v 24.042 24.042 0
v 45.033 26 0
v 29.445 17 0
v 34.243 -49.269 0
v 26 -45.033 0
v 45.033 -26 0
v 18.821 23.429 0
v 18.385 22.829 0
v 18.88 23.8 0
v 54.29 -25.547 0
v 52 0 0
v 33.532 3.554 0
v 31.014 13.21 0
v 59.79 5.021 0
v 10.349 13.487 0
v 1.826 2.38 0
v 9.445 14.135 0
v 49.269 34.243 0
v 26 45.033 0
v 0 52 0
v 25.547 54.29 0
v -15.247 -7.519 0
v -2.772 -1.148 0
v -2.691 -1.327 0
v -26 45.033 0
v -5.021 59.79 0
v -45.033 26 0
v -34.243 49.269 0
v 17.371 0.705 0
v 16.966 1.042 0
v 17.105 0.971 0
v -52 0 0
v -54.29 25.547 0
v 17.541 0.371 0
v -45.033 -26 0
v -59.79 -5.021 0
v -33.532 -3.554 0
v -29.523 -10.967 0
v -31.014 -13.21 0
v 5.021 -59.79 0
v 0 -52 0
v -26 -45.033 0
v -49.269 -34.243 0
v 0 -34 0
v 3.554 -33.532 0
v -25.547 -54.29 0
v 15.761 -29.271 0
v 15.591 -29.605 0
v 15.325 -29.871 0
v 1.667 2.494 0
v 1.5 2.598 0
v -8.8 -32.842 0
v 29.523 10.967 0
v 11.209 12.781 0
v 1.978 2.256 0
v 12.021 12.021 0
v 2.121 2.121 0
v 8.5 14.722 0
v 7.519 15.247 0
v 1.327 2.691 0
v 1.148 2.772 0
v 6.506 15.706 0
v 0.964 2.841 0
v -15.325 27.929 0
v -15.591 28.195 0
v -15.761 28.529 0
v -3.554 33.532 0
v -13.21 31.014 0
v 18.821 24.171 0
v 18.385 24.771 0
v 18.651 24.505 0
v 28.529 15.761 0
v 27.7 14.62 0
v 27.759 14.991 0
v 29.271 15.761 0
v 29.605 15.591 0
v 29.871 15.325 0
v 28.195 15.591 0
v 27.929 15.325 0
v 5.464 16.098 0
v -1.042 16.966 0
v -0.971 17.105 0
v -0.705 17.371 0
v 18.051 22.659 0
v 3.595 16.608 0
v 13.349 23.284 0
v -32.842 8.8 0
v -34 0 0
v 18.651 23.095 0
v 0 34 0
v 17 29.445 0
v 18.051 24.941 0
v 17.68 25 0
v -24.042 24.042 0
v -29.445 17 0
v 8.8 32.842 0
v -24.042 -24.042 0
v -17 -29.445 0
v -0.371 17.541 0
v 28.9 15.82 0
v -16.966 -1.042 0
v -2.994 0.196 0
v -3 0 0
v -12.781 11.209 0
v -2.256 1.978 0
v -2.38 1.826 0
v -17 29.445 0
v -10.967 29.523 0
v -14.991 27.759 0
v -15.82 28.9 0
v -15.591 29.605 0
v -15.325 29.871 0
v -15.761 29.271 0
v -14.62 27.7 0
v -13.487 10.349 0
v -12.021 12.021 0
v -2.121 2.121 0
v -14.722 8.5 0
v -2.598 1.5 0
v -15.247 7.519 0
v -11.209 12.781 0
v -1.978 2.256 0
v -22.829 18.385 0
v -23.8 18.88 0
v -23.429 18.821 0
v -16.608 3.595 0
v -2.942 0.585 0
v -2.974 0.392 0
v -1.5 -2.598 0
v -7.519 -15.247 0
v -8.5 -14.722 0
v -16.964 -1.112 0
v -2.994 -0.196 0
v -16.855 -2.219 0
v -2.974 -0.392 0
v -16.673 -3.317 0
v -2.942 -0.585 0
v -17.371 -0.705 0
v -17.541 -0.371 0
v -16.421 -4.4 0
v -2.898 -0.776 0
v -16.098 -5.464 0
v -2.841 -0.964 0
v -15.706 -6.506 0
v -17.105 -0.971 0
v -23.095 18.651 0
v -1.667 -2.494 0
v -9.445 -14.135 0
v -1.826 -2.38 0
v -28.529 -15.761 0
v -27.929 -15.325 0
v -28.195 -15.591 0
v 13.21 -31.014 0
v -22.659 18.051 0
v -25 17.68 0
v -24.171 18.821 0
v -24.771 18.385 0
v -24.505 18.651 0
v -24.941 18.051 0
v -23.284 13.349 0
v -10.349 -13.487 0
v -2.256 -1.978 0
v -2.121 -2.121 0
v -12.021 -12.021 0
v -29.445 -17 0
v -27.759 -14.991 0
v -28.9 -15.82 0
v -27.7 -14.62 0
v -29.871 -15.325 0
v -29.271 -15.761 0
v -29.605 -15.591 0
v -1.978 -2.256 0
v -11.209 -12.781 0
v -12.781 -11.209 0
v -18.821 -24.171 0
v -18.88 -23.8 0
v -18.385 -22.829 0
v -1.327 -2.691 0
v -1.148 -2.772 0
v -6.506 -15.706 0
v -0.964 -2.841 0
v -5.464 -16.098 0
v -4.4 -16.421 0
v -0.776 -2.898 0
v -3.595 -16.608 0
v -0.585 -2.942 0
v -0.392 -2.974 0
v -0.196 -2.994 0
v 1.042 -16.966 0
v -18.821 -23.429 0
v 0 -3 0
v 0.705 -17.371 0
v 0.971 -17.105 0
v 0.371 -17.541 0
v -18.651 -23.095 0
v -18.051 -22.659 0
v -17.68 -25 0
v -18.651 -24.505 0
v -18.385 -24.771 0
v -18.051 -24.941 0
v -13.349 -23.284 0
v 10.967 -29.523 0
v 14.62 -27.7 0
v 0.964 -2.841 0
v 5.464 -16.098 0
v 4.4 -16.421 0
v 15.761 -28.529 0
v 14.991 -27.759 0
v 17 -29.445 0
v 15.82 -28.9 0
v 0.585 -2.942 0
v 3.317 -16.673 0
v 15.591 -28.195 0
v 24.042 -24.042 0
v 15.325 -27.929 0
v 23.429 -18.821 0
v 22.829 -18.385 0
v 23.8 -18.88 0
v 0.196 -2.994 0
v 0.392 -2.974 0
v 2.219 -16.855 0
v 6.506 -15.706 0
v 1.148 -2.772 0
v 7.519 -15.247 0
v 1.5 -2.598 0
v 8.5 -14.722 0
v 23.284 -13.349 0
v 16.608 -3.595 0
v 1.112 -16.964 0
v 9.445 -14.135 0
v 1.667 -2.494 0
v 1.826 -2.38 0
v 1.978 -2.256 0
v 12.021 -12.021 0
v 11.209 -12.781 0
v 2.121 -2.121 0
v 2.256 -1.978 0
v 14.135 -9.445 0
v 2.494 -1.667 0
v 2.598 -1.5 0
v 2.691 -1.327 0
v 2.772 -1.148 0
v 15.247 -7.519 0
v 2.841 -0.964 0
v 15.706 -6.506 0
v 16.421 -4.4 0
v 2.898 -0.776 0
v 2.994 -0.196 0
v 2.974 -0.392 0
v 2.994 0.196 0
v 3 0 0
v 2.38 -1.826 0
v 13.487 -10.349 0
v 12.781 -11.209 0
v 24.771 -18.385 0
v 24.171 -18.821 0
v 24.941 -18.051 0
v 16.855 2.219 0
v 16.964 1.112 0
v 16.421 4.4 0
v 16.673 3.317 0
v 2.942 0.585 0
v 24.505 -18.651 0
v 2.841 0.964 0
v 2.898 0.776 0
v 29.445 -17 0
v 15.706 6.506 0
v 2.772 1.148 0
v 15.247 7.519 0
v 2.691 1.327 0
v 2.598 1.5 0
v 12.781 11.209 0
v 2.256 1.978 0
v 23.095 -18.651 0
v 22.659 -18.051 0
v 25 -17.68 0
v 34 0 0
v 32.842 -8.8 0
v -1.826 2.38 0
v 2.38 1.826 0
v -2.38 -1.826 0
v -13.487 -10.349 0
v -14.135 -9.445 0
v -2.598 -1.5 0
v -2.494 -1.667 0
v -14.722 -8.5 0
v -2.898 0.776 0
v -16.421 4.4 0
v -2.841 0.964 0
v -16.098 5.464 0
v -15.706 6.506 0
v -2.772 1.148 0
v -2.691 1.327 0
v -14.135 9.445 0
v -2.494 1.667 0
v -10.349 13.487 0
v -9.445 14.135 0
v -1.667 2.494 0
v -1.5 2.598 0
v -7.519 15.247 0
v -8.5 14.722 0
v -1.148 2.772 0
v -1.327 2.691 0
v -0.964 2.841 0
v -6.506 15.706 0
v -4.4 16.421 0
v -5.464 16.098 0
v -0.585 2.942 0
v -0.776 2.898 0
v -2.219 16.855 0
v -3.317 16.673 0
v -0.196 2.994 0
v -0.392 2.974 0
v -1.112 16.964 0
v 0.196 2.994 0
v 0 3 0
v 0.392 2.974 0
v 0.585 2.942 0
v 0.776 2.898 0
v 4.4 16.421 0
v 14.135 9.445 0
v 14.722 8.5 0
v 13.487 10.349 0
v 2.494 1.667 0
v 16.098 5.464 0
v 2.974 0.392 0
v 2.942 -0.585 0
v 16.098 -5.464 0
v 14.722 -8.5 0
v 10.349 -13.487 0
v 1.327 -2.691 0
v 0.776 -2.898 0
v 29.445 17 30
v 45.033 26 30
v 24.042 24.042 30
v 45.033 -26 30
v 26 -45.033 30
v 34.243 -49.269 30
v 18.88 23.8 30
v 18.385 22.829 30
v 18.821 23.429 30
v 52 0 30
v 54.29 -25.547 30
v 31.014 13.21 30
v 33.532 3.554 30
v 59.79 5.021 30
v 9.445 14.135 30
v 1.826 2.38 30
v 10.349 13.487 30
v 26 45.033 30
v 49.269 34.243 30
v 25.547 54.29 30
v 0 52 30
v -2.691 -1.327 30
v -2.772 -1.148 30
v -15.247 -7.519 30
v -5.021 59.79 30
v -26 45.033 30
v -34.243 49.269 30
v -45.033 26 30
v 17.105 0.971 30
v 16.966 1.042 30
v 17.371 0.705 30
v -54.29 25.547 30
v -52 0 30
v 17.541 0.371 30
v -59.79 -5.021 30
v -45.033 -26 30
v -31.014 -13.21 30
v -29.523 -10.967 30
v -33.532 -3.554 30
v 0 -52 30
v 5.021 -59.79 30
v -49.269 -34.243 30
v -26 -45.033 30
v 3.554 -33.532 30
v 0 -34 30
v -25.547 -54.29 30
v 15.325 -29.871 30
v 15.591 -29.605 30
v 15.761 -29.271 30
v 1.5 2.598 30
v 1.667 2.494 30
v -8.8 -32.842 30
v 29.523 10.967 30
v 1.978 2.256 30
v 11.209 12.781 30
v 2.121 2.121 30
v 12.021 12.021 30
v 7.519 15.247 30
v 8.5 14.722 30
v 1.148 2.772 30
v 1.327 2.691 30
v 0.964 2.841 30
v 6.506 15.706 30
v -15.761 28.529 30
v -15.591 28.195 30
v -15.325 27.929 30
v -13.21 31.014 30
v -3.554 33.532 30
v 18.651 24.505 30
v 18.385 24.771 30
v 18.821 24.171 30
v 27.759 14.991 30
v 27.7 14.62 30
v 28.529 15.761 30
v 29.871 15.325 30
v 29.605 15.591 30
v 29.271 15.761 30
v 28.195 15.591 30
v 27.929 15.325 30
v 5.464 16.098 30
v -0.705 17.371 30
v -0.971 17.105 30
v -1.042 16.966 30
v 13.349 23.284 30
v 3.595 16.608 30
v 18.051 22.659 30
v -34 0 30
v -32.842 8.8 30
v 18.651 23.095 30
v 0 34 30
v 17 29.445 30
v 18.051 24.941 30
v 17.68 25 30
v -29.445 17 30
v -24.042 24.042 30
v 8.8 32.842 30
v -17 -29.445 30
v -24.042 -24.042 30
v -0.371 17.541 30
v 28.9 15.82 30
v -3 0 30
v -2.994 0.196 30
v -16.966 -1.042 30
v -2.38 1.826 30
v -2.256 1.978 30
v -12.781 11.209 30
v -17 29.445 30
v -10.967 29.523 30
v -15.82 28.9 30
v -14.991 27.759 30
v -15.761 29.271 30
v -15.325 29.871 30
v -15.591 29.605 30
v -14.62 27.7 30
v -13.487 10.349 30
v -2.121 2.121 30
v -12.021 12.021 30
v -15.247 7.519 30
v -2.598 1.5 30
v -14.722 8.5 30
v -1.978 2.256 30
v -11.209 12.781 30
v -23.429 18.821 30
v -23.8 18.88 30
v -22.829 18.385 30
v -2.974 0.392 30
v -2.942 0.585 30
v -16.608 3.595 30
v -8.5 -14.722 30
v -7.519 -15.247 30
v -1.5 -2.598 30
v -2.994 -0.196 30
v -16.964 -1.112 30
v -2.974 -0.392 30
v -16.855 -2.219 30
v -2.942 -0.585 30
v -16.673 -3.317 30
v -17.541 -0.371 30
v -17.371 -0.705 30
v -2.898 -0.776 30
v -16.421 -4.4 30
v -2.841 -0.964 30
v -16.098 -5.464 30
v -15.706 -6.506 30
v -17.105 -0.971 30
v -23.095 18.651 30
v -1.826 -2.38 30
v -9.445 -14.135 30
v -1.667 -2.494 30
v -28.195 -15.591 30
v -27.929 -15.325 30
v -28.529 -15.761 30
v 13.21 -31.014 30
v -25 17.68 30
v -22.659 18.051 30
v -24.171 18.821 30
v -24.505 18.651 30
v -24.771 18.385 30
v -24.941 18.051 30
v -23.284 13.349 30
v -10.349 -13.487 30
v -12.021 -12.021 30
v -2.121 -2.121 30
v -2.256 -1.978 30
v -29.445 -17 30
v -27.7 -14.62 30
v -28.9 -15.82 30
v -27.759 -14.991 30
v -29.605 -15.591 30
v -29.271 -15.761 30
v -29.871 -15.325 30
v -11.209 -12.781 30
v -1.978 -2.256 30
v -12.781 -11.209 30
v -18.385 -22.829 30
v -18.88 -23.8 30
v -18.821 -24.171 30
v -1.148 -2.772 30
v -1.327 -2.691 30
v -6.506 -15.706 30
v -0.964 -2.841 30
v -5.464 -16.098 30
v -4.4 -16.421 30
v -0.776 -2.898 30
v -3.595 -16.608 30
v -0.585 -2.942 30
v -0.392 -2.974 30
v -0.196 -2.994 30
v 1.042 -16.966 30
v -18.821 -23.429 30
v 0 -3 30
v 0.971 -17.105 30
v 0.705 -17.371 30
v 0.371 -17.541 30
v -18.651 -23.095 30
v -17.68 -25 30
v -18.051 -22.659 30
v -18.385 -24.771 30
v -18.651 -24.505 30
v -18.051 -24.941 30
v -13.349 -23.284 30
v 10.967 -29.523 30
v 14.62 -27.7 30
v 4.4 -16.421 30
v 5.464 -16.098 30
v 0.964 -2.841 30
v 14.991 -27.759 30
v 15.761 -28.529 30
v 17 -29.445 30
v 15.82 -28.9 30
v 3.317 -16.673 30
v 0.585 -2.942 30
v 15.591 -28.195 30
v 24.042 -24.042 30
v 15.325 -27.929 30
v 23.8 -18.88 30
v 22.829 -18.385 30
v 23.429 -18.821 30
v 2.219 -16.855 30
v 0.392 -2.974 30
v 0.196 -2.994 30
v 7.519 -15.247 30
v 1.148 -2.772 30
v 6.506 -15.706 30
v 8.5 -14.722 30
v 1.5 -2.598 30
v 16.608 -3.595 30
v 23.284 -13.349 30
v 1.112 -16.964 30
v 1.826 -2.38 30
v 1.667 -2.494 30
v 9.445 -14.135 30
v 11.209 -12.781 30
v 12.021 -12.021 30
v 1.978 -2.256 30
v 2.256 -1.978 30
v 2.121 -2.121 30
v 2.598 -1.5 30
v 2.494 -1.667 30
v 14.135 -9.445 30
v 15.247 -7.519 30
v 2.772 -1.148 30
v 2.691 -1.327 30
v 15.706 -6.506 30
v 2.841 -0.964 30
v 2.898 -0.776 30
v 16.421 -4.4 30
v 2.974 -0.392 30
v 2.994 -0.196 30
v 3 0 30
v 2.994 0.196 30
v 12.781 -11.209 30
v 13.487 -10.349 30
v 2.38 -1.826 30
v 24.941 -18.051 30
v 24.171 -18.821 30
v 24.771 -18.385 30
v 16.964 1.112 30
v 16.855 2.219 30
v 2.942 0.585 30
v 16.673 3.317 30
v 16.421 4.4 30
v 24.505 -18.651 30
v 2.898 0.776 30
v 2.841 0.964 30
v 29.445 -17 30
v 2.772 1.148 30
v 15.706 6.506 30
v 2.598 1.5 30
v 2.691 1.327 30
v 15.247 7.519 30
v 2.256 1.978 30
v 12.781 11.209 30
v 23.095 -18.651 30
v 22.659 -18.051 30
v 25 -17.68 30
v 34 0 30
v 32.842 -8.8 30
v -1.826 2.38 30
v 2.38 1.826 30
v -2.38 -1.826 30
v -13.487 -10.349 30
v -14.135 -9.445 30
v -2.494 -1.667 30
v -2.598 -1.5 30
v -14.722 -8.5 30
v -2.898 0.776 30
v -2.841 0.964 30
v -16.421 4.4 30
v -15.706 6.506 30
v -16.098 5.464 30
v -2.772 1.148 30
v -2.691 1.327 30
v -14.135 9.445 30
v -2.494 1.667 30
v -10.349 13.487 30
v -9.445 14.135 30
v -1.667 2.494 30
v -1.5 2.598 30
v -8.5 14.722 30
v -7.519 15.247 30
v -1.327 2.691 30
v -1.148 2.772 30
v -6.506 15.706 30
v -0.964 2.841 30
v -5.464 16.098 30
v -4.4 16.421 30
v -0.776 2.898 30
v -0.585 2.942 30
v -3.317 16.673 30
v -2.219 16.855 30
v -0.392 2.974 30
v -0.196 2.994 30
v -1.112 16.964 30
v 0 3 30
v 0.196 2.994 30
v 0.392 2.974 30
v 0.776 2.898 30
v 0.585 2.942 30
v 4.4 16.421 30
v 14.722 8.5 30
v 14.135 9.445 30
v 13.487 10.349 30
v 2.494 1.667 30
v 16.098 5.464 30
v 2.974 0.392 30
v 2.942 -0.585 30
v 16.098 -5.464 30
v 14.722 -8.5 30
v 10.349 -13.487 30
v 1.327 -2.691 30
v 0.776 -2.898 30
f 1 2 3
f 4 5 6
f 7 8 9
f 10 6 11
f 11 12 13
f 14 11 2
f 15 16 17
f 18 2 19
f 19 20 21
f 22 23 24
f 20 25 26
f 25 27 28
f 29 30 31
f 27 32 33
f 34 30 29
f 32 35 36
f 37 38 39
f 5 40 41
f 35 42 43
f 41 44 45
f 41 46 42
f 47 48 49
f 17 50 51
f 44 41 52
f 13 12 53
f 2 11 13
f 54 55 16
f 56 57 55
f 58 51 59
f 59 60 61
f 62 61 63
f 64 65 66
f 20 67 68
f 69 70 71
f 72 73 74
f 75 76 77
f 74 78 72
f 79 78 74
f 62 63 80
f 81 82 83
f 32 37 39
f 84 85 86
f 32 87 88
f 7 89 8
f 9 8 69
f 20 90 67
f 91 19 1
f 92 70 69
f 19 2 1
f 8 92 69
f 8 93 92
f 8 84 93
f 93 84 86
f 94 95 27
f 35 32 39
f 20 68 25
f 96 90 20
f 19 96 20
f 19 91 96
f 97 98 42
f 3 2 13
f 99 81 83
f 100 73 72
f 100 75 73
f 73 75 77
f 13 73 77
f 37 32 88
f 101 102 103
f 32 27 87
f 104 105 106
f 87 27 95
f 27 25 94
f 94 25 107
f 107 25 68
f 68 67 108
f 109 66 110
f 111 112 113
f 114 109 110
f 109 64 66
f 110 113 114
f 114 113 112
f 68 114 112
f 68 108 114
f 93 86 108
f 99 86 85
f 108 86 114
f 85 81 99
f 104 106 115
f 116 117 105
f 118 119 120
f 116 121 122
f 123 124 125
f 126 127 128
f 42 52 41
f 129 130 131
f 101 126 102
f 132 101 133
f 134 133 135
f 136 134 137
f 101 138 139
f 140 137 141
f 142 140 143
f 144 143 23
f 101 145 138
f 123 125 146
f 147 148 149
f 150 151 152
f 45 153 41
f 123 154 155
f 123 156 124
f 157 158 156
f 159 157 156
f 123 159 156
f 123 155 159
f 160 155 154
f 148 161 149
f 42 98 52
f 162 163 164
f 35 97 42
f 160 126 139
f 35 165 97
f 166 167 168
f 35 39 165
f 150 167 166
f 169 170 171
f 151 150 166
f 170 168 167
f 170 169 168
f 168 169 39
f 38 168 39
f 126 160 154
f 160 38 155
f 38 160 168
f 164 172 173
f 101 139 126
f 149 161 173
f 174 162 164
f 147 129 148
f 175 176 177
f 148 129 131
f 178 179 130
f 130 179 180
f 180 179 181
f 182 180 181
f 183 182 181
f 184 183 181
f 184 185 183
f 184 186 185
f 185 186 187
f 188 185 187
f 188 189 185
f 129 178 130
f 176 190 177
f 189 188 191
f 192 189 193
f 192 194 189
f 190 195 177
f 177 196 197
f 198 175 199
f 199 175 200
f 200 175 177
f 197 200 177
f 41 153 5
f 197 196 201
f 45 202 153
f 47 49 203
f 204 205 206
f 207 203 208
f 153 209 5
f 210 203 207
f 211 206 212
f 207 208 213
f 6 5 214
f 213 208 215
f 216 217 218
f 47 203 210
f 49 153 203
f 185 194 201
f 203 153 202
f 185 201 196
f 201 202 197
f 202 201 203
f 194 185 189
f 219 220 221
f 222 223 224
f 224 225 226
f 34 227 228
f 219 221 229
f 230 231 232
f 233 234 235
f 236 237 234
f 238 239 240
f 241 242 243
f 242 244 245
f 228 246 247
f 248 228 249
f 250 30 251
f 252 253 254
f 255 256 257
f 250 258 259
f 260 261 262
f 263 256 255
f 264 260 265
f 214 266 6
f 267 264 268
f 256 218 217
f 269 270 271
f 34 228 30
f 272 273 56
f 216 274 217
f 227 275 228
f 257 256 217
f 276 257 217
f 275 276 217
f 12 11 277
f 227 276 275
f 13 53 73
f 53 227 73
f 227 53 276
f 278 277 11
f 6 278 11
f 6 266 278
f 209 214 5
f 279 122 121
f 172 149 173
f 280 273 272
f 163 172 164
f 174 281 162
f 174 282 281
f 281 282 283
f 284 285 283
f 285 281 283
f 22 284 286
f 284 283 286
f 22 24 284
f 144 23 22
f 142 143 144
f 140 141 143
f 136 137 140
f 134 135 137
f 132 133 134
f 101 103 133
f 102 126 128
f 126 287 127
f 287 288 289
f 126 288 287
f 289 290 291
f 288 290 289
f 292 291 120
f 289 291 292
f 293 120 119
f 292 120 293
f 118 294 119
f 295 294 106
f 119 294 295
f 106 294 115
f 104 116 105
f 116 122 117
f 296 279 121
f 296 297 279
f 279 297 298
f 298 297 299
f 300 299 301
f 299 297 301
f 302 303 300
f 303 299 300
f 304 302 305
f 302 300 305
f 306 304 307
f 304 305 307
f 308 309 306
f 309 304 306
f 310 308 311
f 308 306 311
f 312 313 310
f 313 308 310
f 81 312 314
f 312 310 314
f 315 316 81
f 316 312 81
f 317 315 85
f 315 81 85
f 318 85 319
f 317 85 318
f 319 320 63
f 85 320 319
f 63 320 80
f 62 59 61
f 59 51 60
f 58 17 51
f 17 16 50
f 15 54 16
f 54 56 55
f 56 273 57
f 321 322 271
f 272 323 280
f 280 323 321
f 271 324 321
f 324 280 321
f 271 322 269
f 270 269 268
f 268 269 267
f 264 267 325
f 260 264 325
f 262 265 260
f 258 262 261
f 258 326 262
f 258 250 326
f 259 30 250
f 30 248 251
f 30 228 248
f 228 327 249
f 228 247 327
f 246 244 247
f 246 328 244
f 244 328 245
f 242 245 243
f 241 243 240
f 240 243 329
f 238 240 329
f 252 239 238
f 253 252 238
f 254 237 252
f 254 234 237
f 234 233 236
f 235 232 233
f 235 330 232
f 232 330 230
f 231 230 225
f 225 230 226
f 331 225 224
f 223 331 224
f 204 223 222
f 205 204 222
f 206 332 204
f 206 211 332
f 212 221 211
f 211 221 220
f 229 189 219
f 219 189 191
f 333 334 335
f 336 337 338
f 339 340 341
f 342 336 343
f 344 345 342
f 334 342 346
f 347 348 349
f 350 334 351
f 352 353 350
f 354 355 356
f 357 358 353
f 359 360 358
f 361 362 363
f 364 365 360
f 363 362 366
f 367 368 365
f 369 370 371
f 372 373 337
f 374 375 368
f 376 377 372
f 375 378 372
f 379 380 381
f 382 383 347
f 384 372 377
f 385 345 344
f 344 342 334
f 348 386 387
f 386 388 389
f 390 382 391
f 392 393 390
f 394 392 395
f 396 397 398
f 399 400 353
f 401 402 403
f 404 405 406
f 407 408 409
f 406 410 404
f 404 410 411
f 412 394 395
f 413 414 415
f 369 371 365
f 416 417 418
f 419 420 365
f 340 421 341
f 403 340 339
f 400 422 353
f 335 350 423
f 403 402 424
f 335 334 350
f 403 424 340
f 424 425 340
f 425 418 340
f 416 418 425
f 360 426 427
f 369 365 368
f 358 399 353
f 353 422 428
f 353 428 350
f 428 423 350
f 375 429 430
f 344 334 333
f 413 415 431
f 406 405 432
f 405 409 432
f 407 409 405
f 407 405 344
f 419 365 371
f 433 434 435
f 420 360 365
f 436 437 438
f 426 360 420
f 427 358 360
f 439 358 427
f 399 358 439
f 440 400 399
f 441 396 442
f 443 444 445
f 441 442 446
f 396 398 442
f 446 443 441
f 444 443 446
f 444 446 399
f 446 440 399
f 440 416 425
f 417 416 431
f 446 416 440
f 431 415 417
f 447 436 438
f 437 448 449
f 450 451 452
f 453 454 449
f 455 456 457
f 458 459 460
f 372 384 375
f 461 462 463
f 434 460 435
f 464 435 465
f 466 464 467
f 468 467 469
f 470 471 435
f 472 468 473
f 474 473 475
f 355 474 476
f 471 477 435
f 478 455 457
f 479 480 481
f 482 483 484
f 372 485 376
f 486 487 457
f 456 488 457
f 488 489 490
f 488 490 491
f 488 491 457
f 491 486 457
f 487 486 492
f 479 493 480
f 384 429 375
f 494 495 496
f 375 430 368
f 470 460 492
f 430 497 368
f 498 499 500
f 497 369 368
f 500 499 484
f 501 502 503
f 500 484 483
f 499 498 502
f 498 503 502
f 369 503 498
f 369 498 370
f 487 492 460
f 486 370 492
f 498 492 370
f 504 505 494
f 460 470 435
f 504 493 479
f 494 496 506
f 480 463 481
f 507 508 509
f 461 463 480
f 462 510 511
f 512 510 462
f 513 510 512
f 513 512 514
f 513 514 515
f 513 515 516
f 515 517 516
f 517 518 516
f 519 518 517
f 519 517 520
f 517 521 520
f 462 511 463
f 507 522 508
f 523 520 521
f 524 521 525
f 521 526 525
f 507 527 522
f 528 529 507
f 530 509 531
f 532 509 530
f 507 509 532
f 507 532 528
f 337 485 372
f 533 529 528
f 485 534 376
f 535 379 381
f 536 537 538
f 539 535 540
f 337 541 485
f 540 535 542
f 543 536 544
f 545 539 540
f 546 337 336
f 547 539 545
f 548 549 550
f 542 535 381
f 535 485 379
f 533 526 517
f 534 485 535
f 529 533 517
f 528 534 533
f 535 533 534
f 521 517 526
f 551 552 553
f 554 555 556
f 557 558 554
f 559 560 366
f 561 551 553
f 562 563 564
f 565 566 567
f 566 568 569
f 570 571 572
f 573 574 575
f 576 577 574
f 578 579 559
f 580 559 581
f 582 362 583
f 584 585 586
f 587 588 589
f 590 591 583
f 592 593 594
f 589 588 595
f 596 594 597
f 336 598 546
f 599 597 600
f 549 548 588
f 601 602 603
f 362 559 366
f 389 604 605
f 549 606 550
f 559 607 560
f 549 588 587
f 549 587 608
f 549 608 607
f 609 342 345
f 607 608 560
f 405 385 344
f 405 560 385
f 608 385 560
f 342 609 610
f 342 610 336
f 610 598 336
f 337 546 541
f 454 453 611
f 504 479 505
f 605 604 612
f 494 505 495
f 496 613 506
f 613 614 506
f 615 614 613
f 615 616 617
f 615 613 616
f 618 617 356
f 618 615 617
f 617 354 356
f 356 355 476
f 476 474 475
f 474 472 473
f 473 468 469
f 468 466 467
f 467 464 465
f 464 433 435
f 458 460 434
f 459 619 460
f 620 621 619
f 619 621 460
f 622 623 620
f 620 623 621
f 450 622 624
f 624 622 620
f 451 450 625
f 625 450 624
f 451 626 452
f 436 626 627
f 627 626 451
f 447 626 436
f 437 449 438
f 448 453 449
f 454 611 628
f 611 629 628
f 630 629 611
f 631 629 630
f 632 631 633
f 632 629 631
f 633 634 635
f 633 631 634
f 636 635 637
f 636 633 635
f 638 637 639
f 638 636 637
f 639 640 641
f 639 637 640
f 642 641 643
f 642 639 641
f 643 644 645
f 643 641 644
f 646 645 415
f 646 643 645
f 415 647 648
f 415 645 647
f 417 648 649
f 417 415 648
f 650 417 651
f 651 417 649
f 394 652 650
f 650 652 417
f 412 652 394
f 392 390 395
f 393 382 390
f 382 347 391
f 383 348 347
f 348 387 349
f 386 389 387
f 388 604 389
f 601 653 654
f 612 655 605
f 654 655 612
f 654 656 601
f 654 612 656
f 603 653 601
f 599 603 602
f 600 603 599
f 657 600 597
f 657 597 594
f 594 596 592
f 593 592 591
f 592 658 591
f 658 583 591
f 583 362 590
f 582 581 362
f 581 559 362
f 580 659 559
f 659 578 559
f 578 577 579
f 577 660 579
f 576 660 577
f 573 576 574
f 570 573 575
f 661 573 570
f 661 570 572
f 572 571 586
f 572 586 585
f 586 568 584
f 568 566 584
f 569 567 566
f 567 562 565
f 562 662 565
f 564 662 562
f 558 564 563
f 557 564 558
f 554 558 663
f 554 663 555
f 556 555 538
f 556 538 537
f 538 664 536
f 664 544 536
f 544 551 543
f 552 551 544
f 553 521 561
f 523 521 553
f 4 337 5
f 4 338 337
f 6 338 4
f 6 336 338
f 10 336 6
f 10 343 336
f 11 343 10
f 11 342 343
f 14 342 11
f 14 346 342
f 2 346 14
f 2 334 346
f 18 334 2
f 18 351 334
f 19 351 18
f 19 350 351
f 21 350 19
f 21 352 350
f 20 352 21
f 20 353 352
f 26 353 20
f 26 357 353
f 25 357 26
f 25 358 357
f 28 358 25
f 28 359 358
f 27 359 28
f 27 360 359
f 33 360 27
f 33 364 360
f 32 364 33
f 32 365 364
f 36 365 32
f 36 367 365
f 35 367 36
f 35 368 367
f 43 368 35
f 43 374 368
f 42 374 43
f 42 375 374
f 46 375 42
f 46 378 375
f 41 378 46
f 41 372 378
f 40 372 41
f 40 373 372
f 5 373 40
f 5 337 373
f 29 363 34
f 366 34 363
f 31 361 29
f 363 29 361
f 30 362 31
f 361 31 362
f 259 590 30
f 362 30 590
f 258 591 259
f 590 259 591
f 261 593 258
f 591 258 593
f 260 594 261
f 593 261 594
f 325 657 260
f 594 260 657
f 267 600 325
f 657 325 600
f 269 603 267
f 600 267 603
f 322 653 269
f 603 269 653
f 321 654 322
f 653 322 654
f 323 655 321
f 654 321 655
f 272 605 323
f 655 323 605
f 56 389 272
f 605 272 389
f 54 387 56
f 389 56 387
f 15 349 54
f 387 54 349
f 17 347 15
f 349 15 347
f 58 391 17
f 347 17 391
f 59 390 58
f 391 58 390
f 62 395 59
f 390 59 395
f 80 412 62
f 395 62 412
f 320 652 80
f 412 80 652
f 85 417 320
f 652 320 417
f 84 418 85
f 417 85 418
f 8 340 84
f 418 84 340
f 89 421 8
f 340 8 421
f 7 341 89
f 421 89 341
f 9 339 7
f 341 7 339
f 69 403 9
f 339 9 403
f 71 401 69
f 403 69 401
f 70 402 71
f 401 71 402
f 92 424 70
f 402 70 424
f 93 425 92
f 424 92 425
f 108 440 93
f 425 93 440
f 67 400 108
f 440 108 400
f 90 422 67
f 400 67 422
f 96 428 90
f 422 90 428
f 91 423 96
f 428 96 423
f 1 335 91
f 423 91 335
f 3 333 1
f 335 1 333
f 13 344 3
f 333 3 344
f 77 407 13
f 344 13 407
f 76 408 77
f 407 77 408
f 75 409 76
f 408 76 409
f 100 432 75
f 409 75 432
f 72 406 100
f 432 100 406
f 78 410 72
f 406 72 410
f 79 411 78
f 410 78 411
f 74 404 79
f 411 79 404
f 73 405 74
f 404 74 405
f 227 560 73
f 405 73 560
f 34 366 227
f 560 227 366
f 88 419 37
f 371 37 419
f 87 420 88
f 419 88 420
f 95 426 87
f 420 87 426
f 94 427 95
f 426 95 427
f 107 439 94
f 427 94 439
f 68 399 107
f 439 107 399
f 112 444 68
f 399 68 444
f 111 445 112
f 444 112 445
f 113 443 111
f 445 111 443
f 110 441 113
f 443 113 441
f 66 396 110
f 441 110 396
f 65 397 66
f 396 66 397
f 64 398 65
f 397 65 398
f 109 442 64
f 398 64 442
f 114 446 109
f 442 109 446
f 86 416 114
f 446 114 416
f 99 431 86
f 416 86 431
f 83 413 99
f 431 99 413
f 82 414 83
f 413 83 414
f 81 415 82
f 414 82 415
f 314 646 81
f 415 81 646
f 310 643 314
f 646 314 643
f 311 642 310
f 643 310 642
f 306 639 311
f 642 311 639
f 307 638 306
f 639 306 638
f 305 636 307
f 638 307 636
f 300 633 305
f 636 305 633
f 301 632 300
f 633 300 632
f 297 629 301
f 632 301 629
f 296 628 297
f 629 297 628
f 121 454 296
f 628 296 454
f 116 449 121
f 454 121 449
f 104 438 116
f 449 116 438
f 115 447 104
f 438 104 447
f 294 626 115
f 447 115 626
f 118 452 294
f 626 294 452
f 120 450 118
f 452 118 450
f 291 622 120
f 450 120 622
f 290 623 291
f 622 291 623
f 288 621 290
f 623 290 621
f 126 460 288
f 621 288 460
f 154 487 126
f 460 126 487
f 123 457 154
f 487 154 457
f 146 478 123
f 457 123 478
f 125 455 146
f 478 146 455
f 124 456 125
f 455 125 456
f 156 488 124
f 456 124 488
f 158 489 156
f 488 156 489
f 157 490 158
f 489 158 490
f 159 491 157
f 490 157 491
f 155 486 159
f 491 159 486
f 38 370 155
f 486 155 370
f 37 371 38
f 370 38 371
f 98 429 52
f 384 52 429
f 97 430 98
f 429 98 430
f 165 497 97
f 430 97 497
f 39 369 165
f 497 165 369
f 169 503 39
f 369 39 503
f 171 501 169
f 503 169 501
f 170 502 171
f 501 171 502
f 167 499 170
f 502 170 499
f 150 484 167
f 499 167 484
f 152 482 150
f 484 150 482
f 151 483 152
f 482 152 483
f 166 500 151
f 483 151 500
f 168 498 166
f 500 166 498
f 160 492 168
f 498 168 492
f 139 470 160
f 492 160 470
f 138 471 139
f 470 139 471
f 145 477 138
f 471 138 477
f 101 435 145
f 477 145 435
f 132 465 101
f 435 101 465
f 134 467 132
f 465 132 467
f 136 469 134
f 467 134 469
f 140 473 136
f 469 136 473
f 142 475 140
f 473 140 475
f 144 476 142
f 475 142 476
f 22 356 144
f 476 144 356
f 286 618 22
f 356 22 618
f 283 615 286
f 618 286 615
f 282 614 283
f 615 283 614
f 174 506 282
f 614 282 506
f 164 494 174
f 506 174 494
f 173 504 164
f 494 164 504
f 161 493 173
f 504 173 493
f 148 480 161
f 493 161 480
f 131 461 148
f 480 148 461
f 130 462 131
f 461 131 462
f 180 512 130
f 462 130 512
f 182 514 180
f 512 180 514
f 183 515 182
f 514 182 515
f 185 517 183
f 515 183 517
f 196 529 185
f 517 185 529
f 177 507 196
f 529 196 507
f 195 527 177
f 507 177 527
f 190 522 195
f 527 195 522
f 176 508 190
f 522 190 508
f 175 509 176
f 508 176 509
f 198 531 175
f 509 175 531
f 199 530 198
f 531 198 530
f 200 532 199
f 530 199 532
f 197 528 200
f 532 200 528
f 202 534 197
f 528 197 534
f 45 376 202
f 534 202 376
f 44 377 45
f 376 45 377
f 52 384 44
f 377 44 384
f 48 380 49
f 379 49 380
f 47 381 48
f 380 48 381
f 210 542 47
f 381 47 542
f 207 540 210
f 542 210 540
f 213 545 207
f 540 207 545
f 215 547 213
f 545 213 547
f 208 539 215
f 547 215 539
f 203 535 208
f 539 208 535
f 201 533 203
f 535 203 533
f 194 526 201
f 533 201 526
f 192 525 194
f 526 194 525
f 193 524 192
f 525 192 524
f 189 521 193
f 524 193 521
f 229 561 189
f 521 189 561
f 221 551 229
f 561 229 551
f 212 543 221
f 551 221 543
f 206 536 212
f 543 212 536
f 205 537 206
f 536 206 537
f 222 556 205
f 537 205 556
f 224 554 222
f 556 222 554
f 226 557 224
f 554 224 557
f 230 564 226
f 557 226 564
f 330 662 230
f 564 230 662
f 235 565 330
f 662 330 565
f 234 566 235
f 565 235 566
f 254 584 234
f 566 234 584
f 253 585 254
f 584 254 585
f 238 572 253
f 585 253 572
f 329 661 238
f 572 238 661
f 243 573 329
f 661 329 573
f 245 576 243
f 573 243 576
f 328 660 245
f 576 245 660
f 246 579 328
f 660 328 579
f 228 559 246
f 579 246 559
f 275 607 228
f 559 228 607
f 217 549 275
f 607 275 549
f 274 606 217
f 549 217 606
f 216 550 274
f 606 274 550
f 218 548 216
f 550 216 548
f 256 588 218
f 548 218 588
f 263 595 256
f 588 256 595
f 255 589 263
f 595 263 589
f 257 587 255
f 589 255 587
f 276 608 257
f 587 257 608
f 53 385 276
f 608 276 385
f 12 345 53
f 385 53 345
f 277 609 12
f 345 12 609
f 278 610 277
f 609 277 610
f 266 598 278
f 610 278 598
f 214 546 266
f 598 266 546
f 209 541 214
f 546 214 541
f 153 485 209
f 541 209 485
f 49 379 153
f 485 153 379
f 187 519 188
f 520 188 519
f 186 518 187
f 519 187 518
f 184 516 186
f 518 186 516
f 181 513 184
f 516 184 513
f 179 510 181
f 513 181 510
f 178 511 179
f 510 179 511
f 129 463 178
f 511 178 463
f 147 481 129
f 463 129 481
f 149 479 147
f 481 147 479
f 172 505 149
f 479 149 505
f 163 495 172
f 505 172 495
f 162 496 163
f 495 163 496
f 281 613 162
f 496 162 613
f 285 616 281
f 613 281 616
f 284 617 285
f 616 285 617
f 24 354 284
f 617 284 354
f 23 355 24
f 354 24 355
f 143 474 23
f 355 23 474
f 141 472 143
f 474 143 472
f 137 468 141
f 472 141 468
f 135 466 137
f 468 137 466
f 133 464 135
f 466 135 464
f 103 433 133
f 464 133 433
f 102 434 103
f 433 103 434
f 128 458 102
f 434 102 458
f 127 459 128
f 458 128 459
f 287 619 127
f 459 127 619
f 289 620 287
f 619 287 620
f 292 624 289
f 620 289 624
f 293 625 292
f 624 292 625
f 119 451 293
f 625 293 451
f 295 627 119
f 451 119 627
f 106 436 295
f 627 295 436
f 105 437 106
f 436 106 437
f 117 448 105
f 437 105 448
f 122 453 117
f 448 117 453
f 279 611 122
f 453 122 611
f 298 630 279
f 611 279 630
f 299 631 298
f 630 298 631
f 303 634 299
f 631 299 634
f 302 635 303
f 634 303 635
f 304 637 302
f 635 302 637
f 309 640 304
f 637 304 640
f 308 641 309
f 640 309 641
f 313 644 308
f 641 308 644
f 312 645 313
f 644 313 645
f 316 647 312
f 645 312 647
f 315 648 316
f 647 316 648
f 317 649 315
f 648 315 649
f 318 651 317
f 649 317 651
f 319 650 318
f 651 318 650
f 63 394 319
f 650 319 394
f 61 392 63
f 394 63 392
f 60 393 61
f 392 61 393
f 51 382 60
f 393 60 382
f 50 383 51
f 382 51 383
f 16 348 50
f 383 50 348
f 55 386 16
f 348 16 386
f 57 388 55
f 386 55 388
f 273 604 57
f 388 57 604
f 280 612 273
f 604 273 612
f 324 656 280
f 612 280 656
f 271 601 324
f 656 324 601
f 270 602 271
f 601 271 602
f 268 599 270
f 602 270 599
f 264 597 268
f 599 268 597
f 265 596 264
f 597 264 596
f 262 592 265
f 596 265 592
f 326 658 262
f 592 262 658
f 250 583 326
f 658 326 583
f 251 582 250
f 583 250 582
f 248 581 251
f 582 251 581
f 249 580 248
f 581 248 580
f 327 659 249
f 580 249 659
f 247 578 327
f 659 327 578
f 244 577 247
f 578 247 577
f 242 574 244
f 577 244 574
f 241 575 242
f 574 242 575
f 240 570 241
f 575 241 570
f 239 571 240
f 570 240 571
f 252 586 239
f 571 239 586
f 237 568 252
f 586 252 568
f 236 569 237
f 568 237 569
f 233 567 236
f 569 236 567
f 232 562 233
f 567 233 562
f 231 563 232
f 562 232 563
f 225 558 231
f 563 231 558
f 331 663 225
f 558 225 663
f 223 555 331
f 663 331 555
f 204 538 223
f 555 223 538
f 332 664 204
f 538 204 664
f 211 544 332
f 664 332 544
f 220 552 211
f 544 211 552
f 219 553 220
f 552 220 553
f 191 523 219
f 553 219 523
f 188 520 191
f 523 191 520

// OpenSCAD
// Rover wheel reconstructed from the four supplied reference images.
// Dimensions are provisional, in mm; edit them to match your hardware.

/* [Wheel dimensions] */
outside_diameter = 120;
wheel_width = 30;
lug_height = outside_diameter * 8/120;
rim_inner_diameter = outside_diameter * 68/120;
hub_diameter = outside_diameter * 34/120;

/* [Axle] */
axle_hole_diameter = 6;
axle_hole_shape = "round"; // [round,square]

/* [Tread and spokes] */
lug_count = 12;
spoke_thickness = outside_diameter * 2.4/120;
// Change to -1 to mirror the tread and spokes for the opposite side.
handedness = 1; // [-1,1]

/* [Display] */
view_mode = "solid"; // [solid,profile]
$fn = 96;

/* [Hidden] */
outer_r = outside_diameter/2;
root_r = outer_r-lug_height;
inner_r = rim_inner_diameter/2;
hub_r = hub_diameter/2;
pitch = 360/lug_count;

assert(wheel_width > 0 && lug_count >= 3);
assert(outer_r > root_r && root_r > inner_r);
assert(inner_r > hub_r && hub_r > axle_hole_diameter/2);
assert(spoke_thickness > 0 && abs(handedness) == 1);

function polar(r,a) = [r*cos(a),r*sin(a)];

module rounded_path(points, width) {
    for(i=[0:len(points)-2])
        hull() {
            translate(points[i]) circle(d=width,$fn=20);
            translate(points[i+1]) circle(d=width,$fn=20);
        }
}

module wheel_profile() {
    difference() {
        union() {
            // Short leading face and long trailing face on each lug.
            difference() {
                polygon(points=[for(i=[0:lug_count-1])
                    each [polar(root_r,i*pitch),
                          polar(outer_r,i*pitch+0.16*pitch)]]);
                circle(r=inner_r,$fn=24);
            }
            circle(r=hub_r);
            // Four rounded zigzag webs, matching the reference silhouette.
            for(a=[0:90:270]) rotate(a)
                rounded_path([
                    [0,hub_r-outside_diameter*0.6/120],
                    [inner_r*0.52,inner_r*0.70],
                    [-inner_r*0.43,inner_r*0.85],
                    [-inner_r*0.12,inner_r+outside_diameter*0.6/120]
                ],spoke_thickness);
        }
        if(axle_hole_shape == "square")
            square([axle_hole_diameter,axle_hole_diameter],center=true);
        else
            circle(d=axle_hole_diameter);
    }
}

module rover_wheel() {
    scale([handedness,1,1])
        if(view_mode == "profile") wheel_profile();
        else linear_extrude(height=wheel_width,convexity=10)
            wheel_profile();
}

color("#aeb8c2") rover_wheel();
